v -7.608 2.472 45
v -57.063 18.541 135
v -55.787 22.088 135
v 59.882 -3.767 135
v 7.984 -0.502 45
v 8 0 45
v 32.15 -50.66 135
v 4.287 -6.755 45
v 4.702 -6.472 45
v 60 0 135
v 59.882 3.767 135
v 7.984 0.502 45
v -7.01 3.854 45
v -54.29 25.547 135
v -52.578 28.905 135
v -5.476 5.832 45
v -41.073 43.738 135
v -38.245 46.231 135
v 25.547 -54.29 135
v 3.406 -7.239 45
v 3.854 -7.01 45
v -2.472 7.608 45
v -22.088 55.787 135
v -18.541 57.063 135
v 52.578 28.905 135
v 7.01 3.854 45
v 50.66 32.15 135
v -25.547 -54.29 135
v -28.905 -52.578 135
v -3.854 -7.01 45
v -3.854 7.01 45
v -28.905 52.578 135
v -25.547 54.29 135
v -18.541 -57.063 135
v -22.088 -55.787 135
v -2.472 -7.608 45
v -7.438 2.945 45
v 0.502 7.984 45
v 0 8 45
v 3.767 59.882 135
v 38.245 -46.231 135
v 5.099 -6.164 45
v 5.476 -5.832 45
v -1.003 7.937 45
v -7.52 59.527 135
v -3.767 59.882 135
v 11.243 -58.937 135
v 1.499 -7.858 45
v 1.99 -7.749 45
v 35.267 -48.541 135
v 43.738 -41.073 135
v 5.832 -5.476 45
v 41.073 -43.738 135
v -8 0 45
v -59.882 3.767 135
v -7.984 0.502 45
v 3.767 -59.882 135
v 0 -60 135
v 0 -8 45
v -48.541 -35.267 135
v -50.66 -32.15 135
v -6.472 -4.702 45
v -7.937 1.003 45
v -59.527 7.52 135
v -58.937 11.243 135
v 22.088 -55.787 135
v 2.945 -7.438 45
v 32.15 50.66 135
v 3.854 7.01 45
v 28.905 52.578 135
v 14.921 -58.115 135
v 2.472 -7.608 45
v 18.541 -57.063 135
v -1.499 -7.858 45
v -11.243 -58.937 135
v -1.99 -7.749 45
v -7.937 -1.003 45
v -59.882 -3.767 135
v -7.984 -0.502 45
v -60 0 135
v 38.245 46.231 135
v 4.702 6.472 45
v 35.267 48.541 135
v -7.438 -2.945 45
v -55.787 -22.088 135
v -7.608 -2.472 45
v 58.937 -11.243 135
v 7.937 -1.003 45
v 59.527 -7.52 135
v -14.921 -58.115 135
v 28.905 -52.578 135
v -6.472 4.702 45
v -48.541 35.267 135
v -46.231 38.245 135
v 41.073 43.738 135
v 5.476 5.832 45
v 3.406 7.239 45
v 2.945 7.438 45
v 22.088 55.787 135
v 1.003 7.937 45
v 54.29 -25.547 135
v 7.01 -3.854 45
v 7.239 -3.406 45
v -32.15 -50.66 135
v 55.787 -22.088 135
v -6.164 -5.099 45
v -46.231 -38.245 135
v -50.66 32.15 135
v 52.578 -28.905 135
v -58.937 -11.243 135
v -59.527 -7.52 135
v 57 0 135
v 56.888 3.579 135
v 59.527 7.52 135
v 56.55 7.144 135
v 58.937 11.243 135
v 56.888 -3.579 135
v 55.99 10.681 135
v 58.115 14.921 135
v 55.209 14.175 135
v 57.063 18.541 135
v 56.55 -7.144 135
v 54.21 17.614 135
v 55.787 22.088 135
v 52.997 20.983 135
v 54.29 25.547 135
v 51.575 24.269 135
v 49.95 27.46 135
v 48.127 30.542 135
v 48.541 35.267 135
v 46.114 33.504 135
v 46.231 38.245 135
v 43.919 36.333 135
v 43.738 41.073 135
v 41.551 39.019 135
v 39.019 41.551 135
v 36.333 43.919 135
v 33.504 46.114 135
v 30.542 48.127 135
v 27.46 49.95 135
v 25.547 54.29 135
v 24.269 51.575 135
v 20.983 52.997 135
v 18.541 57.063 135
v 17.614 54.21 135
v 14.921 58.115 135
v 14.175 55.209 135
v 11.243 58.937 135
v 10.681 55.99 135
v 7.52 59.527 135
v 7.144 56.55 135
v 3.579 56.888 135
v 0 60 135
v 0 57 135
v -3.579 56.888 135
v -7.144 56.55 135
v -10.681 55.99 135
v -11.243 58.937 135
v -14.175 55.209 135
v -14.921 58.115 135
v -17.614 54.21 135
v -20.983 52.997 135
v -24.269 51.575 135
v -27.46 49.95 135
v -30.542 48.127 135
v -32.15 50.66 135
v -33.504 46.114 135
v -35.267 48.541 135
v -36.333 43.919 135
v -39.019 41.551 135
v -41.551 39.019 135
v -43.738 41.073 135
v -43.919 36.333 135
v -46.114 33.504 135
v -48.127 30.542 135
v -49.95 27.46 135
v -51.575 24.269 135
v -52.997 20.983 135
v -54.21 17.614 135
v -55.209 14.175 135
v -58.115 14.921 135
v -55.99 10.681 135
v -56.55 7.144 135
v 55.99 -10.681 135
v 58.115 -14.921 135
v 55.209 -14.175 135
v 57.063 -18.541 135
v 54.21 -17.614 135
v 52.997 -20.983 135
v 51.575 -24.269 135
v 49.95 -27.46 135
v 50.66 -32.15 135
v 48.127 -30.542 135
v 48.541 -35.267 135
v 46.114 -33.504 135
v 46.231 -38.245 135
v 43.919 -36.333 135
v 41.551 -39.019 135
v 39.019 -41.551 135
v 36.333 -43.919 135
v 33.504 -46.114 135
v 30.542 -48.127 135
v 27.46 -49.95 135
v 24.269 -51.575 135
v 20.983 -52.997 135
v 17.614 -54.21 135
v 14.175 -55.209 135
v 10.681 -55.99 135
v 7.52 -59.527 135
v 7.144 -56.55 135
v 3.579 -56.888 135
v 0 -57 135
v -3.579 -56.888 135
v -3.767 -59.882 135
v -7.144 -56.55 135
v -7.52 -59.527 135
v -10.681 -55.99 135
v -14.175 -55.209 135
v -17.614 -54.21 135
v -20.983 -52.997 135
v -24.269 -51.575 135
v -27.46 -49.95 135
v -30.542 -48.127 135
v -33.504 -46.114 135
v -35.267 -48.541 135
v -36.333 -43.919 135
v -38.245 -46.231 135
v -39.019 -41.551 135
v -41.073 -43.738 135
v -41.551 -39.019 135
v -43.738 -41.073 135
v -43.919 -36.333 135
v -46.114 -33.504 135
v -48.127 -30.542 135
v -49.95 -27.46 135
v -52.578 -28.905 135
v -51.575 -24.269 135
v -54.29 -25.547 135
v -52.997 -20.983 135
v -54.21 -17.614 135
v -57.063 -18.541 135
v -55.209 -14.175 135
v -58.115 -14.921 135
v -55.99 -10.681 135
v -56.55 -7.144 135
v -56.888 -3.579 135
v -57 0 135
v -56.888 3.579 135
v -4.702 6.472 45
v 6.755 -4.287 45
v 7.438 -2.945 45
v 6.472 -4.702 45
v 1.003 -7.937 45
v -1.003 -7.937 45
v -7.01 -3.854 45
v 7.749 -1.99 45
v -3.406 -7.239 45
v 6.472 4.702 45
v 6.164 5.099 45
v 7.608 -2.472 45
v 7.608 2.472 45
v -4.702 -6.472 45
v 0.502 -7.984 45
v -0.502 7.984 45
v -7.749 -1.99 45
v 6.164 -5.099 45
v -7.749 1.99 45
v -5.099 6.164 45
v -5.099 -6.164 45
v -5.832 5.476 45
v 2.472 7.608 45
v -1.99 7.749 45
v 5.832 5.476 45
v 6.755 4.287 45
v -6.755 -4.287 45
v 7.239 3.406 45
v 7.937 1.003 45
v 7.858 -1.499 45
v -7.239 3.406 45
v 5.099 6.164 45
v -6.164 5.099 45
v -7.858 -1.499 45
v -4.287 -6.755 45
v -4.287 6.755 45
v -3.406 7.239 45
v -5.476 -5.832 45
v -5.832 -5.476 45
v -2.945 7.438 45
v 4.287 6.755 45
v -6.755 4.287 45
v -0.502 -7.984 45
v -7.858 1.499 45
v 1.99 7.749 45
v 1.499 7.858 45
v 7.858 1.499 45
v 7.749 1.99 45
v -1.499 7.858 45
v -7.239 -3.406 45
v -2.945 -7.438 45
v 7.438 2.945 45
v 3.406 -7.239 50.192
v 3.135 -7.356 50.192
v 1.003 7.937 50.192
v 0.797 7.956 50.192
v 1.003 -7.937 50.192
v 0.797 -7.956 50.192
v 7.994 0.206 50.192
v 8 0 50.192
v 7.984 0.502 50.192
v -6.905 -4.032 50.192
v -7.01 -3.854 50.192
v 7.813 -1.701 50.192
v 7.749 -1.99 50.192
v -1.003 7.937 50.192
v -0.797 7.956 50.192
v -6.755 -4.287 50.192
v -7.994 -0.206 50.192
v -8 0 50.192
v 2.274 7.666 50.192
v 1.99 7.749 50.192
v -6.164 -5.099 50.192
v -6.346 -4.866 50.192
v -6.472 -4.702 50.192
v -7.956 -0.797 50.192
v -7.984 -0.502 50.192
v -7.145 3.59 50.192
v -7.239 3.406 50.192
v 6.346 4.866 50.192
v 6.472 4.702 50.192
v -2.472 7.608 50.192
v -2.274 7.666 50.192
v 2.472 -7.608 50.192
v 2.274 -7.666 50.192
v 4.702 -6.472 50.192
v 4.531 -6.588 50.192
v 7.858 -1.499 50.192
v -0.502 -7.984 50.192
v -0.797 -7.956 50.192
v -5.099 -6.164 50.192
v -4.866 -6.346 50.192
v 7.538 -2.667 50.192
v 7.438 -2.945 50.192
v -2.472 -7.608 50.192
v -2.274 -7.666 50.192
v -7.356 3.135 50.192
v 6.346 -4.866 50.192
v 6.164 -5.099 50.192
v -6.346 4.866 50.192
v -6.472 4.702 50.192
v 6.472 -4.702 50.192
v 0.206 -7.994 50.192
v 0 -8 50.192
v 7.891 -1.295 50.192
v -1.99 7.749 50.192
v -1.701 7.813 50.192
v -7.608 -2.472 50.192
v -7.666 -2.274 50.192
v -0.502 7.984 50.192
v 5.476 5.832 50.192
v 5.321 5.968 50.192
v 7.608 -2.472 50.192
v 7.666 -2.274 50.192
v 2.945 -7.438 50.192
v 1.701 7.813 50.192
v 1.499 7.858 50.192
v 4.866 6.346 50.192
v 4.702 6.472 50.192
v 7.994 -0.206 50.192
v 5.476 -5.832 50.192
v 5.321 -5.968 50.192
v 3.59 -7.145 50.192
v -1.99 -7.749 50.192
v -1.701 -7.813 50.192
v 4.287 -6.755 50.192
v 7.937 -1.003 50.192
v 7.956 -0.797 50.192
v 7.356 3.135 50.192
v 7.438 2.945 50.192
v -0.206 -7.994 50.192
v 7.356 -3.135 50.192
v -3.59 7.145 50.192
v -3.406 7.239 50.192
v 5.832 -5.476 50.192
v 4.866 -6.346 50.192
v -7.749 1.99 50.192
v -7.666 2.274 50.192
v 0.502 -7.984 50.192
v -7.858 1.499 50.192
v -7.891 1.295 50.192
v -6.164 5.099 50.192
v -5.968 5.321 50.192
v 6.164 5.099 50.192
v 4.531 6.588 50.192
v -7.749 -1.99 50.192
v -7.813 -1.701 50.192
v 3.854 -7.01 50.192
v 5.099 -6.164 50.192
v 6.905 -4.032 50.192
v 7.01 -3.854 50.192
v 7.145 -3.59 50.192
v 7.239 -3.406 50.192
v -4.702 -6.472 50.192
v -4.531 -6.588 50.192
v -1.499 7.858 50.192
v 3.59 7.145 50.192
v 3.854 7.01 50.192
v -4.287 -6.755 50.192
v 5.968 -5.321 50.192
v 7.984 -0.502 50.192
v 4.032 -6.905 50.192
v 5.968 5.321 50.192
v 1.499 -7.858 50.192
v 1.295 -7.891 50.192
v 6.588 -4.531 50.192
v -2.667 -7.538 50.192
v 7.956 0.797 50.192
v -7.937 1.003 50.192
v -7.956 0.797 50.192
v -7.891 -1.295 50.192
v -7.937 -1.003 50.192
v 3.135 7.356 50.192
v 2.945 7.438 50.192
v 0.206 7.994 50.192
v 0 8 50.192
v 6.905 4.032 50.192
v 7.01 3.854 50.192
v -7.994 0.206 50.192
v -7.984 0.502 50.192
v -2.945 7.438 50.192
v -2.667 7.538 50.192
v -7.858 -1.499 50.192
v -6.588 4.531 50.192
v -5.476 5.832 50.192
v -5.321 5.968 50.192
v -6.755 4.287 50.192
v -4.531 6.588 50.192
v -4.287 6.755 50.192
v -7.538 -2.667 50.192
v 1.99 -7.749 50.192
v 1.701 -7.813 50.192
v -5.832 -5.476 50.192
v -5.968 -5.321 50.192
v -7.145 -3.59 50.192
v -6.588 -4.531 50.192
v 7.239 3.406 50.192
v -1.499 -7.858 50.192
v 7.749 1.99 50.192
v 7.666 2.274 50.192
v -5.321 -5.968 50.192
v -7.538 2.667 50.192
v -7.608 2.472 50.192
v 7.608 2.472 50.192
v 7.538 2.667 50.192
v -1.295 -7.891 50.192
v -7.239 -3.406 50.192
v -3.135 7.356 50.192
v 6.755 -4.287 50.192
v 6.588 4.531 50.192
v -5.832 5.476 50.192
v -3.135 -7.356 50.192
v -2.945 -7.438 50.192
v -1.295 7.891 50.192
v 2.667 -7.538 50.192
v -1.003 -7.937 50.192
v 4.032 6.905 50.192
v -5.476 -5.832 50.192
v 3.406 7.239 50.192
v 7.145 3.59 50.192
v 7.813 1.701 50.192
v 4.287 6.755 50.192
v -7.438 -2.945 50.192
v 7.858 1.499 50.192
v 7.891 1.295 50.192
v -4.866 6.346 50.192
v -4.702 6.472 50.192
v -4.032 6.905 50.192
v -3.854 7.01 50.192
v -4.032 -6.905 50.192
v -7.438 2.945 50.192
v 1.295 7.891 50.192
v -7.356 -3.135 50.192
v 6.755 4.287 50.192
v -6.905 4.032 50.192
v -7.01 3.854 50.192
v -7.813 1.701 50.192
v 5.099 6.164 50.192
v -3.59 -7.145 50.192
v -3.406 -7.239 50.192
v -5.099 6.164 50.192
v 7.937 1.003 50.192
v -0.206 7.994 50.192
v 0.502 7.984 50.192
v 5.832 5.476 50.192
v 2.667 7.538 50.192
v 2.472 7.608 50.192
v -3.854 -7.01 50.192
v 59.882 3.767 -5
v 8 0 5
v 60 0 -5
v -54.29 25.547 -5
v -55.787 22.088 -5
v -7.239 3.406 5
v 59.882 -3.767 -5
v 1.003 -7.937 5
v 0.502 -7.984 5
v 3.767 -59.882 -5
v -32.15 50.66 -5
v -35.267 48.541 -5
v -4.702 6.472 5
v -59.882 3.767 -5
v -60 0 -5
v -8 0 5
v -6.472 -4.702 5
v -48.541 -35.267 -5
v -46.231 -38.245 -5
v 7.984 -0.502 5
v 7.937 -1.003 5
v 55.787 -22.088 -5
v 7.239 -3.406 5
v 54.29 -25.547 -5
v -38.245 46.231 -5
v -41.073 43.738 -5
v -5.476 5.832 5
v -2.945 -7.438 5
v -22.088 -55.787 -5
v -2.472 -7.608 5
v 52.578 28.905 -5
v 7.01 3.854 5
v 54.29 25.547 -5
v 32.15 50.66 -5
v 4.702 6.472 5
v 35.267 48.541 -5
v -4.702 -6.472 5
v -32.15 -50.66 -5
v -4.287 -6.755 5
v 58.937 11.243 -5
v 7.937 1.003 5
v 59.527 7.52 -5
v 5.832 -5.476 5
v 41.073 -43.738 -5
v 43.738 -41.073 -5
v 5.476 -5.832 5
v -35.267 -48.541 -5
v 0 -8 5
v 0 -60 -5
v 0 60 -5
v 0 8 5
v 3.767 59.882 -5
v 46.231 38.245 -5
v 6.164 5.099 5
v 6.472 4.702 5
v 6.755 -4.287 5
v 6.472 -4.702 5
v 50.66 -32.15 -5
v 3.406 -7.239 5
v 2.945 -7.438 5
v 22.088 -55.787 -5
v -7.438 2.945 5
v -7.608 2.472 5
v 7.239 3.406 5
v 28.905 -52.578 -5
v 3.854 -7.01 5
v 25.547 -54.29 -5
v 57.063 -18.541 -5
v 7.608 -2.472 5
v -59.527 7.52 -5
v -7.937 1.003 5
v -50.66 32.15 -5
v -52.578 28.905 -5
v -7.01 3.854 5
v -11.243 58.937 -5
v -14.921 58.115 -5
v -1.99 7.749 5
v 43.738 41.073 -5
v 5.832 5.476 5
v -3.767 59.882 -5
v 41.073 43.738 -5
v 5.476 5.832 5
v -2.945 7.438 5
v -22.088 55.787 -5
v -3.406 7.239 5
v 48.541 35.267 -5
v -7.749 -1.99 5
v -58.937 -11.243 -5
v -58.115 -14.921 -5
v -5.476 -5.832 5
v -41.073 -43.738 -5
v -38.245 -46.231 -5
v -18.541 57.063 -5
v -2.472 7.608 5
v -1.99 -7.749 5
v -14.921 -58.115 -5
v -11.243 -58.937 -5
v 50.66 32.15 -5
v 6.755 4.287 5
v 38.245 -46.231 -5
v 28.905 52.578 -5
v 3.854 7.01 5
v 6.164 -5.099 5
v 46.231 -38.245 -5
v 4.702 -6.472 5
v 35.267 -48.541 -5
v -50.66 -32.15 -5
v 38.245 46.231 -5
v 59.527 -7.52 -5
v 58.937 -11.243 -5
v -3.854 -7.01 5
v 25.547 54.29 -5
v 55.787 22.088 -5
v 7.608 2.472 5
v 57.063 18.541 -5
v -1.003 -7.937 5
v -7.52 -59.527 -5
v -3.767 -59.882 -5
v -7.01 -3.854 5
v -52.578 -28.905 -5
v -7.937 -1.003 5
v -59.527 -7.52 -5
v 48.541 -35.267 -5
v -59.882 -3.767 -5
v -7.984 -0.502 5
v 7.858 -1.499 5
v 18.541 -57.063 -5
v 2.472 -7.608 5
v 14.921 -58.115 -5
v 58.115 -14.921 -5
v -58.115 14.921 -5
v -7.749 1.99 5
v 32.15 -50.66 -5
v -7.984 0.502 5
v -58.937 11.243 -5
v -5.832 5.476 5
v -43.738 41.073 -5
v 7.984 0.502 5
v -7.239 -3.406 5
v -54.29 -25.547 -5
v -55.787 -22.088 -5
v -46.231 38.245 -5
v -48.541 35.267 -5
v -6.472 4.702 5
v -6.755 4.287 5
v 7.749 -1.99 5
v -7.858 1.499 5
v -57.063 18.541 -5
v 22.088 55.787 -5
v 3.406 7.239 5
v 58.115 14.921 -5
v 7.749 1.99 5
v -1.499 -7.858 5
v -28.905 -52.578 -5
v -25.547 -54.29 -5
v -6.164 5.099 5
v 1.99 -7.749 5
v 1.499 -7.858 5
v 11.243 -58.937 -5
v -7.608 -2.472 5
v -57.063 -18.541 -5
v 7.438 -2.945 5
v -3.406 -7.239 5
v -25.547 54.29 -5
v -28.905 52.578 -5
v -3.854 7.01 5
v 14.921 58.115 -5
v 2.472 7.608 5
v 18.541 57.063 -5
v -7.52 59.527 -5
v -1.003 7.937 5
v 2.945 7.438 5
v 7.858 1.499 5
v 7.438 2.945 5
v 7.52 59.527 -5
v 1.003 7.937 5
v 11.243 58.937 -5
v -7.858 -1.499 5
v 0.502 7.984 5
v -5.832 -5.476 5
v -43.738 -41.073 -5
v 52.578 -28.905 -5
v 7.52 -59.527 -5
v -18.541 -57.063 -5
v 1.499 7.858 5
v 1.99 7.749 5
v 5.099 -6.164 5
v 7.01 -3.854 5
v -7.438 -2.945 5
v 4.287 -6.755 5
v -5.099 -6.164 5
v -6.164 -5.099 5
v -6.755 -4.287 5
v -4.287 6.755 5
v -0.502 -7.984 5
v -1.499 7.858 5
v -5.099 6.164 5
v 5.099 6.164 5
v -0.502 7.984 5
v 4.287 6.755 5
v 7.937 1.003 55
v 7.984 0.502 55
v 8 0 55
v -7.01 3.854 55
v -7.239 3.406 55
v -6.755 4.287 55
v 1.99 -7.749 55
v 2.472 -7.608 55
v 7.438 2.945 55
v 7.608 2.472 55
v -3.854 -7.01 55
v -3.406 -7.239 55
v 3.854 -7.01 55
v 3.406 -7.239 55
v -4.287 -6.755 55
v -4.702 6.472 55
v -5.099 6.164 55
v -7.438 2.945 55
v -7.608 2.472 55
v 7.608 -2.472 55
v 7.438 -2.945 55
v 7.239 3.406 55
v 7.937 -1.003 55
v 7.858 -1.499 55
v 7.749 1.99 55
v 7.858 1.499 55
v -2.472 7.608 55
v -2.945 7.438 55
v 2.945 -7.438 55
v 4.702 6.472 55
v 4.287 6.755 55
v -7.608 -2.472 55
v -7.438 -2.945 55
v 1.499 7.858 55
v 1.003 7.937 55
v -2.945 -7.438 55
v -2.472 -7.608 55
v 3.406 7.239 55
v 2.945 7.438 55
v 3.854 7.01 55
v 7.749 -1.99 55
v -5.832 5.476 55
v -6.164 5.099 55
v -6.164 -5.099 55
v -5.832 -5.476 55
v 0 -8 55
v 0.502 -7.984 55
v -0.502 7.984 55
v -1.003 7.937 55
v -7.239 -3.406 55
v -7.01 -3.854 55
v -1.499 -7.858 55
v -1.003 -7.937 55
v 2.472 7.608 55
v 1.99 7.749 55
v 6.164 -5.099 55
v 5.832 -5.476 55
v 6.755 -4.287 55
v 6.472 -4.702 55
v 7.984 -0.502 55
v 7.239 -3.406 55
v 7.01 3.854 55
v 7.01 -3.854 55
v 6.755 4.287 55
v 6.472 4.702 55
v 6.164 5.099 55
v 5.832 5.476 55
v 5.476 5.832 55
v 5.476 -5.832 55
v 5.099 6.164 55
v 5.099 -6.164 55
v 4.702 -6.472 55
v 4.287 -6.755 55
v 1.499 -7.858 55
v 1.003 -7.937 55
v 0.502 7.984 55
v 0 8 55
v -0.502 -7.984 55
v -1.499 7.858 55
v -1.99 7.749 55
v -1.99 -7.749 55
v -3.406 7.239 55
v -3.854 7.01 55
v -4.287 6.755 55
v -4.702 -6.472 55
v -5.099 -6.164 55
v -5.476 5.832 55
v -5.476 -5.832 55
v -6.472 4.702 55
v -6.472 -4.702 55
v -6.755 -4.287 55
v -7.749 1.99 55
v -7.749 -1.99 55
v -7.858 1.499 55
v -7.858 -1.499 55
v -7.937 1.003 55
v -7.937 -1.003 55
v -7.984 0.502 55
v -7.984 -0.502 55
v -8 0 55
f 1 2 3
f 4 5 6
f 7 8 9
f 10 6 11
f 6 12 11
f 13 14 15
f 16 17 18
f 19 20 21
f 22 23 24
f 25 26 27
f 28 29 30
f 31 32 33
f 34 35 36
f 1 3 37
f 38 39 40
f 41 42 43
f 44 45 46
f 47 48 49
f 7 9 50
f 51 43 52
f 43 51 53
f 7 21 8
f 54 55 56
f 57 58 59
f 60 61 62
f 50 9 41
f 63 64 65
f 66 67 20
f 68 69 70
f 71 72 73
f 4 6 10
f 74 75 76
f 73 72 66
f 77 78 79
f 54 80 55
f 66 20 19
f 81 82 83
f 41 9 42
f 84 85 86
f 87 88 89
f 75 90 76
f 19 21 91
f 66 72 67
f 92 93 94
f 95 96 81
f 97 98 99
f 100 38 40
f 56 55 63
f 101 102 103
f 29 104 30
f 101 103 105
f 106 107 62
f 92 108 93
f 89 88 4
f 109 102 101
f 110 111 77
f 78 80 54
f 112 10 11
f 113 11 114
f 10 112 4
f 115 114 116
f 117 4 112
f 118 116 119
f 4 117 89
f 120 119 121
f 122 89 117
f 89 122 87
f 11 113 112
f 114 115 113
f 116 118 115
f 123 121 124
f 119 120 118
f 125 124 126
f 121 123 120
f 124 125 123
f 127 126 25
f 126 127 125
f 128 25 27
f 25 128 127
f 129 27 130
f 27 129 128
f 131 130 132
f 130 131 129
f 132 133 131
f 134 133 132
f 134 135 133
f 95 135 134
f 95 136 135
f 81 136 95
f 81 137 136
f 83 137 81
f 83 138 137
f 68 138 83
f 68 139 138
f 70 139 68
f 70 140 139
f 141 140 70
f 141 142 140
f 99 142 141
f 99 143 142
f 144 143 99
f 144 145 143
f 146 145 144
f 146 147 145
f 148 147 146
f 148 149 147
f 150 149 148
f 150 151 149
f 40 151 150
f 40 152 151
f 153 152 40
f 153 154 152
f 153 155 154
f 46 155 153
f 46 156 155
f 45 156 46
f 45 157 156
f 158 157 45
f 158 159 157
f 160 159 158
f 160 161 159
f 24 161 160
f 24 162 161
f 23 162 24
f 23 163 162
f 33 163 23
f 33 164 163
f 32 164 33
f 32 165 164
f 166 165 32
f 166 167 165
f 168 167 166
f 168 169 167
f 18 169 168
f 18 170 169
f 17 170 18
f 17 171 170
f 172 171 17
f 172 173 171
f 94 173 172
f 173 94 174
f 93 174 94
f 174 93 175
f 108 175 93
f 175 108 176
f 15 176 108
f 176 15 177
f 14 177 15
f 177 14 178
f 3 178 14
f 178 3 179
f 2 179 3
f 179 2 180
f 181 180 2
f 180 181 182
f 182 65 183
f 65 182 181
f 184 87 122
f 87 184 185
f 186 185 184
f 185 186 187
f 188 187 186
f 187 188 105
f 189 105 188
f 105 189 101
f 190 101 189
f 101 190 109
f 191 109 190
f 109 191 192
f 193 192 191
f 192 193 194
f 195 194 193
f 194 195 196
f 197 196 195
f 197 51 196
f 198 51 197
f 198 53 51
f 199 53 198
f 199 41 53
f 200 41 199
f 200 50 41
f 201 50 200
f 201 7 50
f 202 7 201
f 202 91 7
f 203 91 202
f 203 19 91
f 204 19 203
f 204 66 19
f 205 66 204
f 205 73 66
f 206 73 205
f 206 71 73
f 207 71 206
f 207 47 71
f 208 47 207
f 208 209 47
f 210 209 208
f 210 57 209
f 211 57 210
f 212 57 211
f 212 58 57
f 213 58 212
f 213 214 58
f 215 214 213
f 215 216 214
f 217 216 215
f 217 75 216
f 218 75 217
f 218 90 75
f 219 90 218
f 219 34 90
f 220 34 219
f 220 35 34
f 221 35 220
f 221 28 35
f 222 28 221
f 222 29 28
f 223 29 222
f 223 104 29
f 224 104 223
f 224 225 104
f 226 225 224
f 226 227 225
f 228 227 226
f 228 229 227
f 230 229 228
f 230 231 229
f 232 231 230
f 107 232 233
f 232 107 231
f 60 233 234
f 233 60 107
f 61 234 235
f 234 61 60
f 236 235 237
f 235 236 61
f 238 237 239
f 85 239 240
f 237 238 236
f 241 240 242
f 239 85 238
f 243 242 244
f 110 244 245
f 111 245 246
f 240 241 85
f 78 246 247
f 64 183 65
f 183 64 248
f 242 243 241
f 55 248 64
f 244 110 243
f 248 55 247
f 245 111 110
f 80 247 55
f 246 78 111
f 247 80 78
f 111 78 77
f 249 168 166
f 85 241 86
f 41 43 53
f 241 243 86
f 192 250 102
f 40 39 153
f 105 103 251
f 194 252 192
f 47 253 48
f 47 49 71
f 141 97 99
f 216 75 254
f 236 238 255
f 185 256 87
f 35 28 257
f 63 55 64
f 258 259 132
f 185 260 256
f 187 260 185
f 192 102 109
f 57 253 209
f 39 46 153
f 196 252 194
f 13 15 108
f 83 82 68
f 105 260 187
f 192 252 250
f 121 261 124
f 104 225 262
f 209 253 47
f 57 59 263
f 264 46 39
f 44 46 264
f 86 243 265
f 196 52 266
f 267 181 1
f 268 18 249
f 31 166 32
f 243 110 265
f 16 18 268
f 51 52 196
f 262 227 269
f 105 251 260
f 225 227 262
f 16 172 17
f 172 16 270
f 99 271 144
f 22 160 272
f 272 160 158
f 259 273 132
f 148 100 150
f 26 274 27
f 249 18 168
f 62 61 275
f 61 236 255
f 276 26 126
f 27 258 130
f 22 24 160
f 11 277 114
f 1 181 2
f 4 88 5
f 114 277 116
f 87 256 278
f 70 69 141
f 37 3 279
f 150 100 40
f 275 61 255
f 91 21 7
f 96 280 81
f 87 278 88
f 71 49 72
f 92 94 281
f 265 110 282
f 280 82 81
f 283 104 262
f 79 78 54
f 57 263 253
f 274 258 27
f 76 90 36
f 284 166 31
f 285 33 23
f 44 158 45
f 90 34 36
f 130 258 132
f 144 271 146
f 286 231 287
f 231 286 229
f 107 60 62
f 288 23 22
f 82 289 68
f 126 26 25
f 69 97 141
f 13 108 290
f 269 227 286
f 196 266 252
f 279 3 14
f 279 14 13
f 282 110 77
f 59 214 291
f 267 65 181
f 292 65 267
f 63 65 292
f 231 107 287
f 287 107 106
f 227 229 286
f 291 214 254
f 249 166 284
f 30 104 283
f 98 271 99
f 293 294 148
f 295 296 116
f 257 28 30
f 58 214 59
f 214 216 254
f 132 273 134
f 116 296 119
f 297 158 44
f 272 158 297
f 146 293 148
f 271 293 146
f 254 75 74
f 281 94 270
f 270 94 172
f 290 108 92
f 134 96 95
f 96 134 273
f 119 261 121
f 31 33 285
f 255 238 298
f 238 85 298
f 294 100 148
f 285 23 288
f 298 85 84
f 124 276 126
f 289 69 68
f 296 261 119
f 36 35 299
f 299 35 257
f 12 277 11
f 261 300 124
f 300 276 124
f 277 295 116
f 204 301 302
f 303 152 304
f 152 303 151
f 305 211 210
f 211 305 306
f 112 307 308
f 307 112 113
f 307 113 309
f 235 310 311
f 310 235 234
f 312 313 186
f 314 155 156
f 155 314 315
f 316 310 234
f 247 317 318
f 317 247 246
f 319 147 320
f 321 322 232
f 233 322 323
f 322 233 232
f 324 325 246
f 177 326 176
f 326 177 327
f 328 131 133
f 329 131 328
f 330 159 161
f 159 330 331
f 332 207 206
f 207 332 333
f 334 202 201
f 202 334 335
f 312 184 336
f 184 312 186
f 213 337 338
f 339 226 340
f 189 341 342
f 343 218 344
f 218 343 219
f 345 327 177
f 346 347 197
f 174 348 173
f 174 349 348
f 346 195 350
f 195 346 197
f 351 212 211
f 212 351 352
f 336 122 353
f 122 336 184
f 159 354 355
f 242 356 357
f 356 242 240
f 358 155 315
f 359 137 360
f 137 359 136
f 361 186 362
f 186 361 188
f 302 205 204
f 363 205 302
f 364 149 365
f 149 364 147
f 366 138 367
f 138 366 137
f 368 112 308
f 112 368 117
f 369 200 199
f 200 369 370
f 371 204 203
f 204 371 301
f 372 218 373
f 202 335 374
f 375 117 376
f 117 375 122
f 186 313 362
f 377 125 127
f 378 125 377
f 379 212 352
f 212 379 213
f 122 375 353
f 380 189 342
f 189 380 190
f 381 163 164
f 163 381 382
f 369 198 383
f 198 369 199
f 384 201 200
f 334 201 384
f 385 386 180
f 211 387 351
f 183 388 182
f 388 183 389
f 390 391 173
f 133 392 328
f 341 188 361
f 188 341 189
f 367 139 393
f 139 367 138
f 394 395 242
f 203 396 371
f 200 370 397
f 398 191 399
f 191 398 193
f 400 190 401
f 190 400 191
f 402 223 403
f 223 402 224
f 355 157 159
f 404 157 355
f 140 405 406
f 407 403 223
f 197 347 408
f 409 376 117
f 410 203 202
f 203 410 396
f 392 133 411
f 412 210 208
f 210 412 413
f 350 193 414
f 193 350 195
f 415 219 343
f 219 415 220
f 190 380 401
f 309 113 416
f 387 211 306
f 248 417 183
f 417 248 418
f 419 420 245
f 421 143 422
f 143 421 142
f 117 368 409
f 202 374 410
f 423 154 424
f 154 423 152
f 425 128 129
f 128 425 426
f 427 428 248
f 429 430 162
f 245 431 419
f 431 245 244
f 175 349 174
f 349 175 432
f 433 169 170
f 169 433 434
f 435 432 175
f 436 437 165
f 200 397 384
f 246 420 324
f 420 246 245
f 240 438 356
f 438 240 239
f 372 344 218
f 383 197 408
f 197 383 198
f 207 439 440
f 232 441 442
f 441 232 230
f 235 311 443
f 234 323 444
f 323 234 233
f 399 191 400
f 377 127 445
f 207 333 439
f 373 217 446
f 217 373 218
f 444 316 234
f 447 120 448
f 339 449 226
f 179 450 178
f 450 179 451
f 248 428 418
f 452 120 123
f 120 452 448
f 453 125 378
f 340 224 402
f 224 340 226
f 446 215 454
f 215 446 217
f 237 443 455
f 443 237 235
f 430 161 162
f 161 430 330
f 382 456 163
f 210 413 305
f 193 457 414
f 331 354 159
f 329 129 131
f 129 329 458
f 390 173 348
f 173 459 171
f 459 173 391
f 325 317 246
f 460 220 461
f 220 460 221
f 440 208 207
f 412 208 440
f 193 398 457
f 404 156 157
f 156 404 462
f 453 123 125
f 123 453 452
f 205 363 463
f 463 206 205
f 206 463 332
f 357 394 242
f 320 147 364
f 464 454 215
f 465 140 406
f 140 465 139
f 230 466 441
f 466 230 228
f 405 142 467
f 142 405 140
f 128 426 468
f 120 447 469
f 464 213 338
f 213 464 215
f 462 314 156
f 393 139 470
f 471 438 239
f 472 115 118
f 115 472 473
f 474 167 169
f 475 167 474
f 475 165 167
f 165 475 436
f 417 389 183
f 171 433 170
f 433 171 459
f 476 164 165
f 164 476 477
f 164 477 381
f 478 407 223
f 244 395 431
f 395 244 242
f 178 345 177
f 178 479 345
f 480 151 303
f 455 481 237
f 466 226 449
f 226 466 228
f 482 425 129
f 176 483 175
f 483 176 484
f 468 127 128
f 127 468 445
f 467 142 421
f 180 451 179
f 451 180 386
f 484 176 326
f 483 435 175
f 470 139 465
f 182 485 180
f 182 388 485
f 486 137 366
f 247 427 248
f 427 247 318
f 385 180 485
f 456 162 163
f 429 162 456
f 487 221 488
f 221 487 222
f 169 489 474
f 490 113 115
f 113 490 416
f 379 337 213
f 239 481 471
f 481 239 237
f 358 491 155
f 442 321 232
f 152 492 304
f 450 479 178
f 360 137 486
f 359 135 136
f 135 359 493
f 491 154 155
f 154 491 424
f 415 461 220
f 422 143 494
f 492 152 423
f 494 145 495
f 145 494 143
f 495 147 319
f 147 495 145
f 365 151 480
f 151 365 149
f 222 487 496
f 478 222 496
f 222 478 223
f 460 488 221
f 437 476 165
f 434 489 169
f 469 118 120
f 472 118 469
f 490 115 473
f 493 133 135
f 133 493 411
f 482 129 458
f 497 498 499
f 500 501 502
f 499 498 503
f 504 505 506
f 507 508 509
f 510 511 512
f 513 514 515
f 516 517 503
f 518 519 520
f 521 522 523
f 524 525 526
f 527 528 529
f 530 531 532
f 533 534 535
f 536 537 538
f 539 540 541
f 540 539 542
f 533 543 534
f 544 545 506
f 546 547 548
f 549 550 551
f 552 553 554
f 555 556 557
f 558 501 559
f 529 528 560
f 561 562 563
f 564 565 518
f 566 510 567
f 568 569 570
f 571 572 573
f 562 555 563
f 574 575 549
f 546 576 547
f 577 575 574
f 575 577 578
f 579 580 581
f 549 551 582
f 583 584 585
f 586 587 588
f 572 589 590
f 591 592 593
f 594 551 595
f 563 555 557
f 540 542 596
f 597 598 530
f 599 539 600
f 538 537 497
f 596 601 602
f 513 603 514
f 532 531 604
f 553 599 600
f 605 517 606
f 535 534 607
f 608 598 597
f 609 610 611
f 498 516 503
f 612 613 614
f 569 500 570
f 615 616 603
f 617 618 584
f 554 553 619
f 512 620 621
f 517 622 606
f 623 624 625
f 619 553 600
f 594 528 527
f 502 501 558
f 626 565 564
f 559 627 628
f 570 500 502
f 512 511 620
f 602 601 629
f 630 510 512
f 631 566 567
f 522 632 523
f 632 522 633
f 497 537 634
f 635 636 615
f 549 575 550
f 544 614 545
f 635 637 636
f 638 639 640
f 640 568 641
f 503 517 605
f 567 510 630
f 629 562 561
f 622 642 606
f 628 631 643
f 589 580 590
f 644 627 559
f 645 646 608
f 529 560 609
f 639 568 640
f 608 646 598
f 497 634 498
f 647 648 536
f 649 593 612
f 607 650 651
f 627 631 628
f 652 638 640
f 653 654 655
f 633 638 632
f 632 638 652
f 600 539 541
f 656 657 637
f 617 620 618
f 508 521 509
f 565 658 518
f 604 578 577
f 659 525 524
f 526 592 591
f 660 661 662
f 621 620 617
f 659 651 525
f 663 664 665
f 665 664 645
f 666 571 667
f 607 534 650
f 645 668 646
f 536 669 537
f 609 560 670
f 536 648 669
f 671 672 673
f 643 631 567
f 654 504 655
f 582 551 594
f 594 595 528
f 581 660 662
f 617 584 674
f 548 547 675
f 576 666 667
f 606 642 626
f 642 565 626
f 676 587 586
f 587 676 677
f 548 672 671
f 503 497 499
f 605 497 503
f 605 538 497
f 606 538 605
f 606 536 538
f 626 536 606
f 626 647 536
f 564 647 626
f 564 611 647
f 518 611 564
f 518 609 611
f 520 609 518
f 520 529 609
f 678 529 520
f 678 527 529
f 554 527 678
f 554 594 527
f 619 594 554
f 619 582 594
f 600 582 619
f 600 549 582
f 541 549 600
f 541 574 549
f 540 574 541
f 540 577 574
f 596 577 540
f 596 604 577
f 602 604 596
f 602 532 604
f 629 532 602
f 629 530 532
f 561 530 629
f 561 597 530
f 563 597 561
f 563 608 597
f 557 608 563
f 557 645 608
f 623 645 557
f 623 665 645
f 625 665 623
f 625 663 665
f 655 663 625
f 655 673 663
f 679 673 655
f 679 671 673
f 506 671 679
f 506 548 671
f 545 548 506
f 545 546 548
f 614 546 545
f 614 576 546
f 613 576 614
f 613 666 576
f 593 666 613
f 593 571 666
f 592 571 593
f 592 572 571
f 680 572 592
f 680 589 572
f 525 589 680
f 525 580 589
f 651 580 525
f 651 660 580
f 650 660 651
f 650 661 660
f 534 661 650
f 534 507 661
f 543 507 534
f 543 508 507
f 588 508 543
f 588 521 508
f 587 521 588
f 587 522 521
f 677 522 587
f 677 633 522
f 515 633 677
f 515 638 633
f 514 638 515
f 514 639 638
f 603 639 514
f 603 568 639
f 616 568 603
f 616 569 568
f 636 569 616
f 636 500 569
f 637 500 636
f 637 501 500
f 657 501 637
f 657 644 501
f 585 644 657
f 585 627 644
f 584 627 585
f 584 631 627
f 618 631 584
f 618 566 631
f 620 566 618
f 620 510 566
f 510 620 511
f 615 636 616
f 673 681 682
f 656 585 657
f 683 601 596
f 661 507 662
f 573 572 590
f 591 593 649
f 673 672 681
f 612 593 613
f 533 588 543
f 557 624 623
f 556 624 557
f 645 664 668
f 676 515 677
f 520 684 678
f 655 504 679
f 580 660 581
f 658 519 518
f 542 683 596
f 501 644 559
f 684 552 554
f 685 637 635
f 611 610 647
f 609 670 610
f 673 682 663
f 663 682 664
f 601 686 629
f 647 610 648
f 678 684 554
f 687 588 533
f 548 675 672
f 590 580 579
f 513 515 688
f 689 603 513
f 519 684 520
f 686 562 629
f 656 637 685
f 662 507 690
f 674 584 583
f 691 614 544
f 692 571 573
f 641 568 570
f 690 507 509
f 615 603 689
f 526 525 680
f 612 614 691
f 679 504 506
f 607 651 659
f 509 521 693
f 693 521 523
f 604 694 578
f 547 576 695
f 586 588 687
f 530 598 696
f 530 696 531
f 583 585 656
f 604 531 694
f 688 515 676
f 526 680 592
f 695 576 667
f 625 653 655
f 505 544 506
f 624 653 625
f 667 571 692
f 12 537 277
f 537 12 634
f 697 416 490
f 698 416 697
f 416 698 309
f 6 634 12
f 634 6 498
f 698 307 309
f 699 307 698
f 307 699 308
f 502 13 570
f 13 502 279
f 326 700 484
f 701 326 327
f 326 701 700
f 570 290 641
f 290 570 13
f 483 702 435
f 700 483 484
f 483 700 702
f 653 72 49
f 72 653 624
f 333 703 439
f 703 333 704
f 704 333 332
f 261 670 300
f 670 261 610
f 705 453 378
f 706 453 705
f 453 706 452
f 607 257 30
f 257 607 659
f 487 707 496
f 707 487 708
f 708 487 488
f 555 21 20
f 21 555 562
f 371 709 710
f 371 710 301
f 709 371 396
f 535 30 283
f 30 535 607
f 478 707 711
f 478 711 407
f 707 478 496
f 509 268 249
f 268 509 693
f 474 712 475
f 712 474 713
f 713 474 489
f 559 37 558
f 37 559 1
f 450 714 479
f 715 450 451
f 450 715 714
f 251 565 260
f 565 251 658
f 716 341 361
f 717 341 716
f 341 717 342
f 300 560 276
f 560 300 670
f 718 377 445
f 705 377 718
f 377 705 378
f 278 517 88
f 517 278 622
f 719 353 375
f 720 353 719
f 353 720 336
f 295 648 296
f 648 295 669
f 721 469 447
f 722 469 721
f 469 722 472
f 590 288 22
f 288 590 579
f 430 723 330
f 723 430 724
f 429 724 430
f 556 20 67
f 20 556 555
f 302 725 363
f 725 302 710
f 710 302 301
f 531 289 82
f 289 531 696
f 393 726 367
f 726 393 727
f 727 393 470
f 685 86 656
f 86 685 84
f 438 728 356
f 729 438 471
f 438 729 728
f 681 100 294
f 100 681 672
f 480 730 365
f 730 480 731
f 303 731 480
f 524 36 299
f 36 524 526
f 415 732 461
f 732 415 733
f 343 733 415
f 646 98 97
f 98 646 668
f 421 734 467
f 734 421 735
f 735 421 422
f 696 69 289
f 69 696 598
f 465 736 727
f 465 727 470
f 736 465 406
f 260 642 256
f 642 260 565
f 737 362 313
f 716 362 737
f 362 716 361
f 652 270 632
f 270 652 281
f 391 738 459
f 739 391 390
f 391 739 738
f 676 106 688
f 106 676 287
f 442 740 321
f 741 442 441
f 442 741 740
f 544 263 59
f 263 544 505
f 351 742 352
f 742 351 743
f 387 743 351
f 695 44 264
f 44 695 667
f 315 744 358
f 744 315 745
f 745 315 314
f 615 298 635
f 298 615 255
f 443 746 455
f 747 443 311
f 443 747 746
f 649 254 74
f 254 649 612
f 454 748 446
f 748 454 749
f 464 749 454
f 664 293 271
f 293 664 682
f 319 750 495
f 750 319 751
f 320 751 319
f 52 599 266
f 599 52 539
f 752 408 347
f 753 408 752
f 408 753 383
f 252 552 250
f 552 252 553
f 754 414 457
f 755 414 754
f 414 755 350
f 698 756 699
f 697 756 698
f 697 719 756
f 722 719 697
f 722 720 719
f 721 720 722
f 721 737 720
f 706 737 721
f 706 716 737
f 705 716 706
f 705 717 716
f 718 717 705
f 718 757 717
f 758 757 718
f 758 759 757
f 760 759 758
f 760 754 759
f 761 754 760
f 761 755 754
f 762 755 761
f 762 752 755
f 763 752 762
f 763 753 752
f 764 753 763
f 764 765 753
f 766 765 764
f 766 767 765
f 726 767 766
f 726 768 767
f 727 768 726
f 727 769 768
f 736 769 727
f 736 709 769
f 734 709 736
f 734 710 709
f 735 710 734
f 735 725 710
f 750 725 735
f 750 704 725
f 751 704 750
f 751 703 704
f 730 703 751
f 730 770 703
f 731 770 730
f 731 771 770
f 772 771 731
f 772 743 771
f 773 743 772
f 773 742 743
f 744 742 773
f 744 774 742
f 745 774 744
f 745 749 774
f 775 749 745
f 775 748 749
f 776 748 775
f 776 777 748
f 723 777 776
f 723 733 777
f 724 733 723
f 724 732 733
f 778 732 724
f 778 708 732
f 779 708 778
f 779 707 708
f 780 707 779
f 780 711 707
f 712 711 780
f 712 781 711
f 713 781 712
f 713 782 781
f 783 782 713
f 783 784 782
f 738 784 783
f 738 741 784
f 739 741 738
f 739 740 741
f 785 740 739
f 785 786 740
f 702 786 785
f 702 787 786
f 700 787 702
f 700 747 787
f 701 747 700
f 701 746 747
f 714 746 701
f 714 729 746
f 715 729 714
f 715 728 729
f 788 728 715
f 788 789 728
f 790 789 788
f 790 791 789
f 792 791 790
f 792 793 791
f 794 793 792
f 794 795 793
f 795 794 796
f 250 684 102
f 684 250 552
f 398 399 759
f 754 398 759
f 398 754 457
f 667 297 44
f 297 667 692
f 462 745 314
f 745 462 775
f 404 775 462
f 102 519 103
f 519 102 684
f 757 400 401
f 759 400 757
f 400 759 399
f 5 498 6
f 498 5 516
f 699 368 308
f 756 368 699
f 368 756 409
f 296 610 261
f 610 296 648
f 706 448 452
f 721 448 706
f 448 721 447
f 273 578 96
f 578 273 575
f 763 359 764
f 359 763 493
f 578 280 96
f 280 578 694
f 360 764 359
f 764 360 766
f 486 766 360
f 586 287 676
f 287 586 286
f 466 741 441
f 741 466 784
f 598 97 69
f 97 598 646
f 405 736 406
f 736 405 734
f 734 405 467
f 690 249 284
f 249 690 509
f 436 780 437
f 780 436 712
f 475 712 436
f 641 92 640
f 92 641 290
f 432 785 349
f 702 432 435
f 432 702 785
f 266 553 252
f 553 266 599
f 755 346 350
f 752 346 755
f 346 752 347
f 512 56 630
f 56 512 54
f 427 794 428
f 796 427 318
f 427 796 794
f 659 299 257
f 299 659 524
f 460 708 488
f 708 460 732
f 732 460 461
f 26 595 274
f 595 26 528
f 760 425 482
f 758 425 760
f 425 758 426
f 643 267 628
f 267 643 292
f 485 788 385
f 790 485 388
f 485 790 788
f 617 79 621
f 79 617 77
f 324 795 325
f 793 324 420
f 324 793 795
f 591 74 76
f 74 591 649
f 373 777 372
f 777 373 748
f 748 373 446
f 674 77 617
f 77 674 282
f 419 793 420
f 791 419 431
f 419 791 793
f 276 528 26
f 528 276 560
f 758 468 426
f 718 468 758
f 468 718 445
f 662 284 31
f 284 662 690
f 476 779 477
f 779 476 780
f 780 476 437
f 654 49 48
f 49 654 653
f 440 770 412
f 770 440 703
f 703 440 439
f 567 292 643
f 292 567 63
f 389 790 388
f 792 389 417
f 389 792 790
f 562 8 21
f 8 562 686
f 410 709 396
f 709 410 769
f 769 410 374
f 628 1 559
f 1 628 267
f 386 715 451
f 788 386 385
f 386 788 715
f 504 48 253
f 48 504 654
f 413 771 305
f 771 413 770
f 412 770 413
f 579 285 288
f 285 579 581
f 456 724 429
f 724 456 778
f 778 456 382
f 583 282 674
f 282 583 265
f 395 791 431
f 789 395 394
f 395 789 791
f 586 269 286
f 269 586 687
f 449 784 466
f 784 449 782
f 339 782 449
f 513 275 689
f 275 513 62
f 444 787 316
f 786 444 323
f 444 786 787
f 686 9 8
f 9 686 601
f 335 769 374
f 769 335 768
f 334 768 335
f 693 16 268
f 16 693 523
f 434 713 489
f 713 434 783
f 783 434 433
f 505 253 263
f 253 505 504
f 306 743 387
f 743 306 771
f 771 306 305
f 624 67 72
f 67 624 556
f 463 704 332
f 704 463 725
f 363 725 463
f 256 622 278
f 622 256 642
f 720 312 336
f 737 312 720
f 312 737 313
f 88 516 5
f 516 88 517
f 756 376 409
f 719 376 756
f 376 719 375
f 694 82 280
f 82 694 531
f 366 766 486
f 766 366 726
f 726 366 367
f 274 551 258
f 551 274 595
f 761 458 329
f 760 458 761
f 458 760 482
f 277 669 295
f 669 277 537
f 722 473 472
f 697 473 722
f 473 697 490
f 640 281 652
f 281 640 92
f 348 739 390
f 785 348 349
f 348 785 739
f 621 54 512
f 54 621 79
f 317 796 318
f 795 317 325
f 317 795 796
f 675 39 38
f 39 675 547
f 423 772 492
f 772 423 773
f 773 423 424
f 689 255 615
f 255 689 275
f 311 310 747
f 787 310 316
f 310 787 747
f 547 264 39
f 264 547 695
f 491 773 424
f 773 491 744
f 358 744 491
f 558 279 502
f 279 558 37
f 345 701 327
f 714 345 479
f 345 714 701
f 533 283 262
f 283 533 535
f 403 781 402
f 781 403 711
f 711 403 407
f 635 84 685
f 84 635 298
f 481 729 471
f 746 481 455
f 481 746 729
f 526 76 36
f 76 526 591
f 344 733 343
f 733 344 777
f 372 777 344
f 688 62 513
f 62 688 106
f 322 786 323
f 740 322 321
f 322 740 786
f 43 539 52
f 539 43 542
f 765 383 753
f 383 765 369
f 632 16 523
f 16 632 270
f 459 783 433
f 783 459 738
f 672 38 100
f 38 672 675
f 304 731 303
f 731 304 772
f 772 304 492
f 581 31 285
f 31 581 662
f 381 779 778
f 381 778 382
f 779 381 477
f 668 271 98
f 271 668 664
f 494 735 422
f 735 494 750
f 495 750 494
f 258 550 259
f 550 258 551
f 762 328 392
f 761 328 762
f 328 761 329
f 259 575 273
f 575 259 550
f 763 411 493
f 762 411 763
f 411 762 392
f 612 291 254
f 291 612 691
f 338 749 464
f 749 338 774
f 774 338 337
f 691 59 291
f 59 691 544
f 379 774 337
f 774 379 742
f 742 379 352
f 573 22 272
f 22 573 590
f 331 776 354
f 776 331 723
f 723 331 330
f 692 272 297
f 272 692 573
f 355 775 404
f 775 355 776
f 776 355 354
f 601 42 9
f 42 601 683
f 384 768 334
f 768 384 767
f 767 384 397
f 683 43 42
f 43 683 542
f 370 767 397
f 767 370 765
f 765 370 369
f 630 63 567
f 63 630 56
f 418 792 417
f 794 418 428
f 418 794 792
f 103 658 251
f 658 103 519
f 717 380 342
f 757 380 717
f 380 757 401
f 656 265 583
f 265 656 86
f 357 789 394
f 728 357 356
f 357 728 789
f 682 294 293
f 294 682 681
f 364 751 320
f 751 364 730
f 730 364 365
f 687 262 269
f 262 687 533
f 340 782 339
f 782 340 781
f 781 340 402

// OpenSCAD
shell=3;
$fn=100;
cylinder(h=10, r1=60, r2=8, center=true);
translate([0,0,30]) cylinder(h=50,r=8,center=true);
difference(){
translate([0,0,30+60]) cylinder(h=90,r1=8, r2=60,center=true);

translate([0,0,30+60]) cylinder(h=90,r1=8-shell, r2=60-shell,center=true);
}
